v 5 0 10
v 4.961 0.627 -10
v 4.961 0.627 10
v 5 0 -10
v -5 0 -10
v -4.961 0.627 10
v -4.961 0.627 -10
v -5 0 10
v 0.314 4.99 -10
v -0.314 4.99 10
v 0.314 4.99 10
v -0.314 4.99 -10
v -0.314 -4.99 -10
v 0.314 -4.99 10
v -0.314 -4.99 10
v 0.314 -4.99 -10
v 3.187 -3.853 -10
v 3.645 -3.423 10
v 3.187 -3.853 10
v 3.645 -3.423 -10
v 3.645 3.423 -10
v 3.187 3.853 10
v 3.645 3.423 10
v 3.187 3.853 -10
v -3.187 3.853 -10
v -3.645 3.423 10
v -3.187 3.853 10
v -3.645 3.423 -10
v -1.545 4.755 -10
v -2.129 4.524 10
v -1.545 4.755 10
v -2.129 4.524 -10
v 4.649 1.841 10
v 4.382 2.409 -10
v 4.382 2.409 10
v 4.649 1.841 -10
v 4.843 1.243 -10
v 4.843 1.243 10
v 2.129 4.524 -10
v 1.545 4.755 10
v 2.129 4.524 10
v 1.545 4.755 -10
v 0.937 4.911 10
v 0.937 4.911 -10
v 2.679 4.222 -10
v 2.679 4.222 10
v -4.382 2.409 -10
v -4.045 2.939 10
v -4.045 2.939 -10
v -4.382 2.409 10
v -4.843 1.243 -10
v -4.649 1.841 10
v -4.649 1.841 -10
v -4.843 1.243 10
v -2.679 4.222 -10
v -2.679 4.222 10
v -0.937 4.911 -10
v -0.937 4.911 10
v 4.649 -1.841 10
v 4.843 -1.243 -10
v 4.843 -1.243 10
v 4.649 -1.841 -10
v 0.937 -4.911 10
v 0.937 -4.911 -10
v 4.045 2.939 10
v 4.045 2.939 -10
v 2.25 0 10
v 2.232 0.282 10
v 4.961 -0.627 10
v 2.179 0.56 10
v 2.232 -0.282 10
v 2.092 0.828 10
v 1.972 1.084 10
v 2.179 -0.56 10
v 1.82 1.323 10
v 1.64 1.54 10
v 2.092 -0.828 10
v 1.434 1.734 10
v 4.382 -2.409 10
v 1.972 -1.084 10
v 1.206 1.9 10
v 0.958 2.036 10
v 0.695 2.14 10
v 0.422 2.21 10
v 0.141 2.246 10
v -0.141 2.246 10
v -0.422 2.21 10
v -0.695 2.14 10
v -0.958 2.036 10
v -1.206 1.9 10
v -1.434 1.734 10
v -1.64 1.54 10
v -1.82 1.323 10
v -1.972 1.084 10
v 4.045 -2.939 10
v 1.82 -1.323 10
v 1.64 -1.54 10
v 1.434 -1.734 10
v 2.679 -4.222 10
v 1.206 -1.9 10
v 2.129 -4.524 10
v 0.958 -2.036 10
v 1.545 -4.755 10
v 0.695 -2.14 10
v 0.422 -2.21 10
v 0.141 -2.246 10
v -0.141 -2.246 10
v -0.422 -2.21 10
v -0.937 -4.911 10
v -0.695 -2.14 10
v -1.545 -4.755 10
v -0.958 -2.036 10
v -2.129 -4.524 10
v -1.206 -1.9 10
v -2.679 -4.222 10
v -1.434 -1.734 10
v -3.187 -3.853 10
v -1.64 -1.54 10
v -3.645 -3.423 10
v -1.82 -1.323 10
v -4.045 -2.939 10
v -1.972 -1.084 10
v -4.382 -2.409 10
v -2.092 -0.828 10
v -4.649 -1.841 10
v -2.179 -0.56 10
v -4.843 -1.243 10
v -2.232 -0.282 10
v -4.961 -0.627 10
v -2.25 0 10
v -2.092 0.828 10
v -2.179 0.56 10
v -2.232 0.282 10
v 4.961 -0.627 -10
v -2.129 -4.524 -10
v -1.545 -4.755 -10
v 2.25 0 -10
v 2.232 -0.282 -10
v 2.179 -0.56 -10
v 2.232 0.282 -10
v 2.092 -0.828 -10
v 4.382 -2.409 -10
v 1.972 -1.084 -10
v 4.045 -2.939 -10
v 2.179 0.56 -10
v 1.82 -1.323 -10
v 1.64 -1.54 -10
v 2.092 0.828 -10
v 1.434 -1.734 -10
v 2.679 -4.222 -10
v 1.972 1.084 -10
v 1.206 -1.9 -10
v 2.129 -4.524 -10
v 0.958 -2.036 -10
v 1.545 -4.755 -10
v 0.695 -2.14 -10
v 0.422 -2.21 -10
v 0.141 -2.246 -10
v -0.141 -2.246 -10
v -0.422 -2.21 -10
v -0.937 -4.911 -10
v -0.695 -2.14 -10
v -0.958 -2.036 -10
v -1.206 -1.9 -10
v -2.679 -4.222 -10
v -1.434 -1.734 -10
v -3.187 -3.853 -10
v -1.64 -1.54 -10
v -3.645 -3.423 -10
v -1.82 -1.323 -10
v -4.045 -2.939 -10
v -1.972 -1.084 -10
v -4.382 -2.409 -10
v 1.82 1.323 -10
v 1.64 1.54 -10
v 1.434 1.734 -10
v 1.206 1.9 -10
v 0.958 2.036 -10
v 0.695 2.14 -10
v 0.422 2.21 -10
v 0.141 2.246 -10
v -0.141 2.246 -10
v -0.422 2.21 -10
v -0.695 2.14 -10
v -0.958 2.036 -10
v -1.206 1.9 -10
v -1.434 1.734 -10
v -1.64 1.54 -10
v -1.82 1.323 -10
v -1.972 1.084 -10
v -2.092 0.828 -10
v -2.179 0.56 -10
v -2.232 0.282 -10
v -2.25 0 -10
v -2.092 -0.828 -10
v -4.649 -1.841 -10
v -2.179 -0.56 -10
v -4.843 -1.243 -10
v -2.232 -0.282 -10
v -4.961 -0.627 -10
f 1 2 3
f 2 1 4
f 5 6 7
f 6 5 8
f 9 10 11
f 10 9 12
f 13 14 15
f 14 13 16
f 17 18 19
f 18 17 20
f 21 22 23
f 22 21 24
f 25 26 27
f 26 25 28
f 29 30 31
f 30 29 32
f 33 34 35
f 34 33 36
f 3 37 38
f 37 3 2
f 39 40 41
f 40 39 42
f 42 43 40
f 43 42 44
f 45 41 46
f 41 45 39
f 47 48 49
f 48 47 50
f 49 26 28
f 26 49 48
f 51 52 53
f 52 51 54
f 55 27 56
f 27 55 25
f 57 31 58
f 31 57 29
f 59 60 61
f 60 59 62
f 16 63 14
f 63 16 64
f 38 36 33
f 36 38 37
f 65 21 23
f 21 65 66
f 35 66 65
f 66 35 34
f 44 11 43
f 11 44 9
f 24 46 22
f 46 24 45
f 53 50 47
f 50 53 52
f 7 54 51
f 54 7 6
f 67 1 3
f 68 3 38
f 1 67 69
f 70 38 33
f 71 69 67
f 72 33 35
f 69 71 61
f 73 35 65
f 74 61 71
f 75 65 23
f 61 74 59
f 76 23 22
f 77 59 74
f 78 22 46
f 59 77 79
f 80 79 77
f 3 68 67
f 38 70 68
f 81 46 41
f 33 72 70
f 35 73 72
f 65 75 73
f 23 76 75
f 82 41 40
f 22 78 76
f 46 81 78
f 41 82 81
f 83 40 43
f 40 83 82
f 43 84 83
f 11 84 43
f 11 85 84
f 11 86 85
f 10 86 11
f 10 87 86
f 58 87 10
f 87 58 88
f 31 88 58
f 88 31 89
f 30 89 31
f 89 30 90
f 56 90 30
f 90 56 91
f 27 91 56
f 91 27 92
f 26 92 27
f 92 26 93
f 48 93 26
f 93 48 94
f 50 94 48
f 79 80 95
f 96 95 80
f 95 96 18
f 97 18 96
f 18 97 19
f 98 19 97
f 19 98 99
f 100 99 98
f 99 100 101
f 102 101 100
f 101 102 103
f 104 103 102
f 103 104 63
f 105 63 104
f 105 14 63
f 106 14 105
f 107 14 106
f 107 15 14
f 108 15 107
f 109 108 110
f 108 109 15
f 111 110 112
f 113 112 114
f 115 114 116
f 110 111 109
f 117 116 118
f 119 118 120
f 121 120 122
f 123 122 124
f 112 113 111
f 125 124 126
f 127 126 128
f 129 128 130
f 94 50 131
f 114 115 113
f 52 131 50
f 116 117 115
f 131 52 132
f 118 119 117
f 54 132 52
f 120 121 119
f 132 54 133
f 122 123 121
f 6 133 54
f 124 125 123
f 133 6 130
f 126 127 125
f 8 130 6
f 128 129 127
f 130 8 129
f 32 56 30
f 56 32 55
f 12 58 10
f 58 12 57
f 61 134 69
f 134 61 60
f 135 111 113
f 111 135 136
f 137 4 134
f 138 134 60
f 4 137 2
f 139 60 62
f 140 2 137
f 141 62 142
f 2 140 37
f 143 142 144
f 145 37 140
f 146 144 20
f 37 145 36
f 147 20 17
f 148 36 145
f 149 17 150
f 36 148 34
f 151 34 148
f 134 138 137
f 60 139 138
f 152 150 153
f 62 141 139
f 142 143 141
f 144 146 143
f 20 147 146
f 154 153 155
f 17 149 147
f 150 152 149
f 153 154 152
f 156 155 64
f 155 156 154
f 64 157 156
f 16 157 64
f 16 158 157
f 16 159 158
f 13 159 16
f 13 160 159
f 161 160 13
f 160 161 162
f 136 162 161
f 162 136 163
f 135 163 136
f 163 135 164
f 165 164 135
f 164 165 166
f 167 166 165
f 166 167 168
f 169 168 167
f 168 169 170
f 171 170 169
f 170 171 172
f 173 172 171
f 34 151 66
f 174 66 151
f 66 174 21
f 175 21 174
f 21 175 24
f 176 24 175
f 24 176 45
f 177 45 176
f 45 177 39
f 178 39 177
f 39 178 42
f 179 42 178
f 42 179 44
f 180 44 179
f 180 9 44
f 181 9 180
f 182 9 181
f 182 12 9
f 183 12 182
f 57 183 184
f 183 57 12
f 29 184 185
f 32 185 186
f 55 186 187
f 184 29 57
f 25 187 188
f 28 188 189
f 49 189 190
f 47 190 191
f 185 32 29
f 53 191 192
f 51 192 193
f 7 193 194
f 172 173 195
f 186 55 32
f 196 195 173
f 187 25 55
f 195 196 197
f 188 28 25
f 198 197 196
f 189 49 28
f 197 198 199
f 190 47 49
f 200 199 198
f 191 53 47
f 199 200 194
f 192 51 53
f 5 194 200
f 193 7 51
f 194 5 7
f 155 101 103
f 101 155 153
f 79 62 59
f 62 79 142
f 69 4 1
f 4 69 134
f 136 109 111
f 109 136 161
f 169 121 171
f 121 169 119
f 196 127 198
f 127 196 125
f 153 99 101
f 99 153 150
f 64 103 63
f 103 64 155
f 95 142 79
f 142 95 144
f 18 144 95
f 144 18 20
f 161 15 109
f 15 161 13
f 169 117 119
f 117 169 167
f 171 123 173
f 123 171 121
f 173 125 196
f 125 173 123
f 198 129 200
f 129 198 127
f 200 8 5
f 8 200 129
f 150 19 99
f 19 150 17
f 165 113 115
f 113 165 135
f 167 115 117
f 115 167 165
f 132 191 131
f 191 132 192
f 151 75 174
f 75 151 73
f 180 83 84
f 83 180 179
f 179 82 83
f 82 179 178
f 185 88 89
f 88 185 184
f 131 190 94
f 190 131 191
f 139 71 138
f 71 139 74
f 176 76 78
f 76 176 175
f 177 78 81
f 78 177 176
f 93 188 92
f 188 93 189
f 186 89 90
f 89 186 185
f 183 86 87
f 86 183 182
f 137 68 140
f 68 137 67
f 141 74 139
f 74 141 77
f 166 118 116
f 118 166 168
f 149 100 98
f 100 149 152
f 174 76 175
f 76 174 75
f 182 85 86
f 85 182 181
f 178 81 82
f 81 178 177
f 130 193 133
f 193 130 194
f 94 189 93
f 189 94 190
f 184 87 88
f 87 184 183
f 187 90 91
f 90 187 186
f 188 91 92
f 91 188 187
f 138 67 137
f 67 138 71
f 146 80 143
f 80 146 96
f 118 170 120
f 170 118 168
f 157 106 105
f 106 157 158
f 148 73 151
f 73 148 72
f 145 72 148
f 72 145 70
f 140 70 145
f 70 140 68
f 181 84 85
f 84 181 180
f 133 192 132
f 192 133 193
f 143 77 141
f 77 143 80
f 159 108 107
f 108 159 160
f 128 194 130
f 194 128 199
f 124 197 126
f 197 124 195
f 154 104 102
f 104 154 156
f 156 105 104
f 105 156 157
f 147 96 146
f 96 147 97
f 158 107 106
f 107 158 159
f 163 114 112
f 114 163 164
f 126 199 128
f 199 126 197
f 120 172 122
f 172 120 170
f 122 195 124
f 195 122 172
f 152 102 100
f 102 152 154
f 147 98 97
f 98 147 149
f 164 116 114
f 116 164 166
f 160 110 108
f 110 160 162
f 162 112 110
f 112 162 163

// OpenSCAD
$fn = 50;


difference() {
	union() {
		translate(v = [0, 0, -10.0000000000]) {
			cylinder(h = 20, r = 5.0000000000);
		}
	}
	union() {
		translate(v = [0, 0, -100.0000000000]) {
			cylinder(h = 200, r = 2.2500000000);
		}
	}
}
